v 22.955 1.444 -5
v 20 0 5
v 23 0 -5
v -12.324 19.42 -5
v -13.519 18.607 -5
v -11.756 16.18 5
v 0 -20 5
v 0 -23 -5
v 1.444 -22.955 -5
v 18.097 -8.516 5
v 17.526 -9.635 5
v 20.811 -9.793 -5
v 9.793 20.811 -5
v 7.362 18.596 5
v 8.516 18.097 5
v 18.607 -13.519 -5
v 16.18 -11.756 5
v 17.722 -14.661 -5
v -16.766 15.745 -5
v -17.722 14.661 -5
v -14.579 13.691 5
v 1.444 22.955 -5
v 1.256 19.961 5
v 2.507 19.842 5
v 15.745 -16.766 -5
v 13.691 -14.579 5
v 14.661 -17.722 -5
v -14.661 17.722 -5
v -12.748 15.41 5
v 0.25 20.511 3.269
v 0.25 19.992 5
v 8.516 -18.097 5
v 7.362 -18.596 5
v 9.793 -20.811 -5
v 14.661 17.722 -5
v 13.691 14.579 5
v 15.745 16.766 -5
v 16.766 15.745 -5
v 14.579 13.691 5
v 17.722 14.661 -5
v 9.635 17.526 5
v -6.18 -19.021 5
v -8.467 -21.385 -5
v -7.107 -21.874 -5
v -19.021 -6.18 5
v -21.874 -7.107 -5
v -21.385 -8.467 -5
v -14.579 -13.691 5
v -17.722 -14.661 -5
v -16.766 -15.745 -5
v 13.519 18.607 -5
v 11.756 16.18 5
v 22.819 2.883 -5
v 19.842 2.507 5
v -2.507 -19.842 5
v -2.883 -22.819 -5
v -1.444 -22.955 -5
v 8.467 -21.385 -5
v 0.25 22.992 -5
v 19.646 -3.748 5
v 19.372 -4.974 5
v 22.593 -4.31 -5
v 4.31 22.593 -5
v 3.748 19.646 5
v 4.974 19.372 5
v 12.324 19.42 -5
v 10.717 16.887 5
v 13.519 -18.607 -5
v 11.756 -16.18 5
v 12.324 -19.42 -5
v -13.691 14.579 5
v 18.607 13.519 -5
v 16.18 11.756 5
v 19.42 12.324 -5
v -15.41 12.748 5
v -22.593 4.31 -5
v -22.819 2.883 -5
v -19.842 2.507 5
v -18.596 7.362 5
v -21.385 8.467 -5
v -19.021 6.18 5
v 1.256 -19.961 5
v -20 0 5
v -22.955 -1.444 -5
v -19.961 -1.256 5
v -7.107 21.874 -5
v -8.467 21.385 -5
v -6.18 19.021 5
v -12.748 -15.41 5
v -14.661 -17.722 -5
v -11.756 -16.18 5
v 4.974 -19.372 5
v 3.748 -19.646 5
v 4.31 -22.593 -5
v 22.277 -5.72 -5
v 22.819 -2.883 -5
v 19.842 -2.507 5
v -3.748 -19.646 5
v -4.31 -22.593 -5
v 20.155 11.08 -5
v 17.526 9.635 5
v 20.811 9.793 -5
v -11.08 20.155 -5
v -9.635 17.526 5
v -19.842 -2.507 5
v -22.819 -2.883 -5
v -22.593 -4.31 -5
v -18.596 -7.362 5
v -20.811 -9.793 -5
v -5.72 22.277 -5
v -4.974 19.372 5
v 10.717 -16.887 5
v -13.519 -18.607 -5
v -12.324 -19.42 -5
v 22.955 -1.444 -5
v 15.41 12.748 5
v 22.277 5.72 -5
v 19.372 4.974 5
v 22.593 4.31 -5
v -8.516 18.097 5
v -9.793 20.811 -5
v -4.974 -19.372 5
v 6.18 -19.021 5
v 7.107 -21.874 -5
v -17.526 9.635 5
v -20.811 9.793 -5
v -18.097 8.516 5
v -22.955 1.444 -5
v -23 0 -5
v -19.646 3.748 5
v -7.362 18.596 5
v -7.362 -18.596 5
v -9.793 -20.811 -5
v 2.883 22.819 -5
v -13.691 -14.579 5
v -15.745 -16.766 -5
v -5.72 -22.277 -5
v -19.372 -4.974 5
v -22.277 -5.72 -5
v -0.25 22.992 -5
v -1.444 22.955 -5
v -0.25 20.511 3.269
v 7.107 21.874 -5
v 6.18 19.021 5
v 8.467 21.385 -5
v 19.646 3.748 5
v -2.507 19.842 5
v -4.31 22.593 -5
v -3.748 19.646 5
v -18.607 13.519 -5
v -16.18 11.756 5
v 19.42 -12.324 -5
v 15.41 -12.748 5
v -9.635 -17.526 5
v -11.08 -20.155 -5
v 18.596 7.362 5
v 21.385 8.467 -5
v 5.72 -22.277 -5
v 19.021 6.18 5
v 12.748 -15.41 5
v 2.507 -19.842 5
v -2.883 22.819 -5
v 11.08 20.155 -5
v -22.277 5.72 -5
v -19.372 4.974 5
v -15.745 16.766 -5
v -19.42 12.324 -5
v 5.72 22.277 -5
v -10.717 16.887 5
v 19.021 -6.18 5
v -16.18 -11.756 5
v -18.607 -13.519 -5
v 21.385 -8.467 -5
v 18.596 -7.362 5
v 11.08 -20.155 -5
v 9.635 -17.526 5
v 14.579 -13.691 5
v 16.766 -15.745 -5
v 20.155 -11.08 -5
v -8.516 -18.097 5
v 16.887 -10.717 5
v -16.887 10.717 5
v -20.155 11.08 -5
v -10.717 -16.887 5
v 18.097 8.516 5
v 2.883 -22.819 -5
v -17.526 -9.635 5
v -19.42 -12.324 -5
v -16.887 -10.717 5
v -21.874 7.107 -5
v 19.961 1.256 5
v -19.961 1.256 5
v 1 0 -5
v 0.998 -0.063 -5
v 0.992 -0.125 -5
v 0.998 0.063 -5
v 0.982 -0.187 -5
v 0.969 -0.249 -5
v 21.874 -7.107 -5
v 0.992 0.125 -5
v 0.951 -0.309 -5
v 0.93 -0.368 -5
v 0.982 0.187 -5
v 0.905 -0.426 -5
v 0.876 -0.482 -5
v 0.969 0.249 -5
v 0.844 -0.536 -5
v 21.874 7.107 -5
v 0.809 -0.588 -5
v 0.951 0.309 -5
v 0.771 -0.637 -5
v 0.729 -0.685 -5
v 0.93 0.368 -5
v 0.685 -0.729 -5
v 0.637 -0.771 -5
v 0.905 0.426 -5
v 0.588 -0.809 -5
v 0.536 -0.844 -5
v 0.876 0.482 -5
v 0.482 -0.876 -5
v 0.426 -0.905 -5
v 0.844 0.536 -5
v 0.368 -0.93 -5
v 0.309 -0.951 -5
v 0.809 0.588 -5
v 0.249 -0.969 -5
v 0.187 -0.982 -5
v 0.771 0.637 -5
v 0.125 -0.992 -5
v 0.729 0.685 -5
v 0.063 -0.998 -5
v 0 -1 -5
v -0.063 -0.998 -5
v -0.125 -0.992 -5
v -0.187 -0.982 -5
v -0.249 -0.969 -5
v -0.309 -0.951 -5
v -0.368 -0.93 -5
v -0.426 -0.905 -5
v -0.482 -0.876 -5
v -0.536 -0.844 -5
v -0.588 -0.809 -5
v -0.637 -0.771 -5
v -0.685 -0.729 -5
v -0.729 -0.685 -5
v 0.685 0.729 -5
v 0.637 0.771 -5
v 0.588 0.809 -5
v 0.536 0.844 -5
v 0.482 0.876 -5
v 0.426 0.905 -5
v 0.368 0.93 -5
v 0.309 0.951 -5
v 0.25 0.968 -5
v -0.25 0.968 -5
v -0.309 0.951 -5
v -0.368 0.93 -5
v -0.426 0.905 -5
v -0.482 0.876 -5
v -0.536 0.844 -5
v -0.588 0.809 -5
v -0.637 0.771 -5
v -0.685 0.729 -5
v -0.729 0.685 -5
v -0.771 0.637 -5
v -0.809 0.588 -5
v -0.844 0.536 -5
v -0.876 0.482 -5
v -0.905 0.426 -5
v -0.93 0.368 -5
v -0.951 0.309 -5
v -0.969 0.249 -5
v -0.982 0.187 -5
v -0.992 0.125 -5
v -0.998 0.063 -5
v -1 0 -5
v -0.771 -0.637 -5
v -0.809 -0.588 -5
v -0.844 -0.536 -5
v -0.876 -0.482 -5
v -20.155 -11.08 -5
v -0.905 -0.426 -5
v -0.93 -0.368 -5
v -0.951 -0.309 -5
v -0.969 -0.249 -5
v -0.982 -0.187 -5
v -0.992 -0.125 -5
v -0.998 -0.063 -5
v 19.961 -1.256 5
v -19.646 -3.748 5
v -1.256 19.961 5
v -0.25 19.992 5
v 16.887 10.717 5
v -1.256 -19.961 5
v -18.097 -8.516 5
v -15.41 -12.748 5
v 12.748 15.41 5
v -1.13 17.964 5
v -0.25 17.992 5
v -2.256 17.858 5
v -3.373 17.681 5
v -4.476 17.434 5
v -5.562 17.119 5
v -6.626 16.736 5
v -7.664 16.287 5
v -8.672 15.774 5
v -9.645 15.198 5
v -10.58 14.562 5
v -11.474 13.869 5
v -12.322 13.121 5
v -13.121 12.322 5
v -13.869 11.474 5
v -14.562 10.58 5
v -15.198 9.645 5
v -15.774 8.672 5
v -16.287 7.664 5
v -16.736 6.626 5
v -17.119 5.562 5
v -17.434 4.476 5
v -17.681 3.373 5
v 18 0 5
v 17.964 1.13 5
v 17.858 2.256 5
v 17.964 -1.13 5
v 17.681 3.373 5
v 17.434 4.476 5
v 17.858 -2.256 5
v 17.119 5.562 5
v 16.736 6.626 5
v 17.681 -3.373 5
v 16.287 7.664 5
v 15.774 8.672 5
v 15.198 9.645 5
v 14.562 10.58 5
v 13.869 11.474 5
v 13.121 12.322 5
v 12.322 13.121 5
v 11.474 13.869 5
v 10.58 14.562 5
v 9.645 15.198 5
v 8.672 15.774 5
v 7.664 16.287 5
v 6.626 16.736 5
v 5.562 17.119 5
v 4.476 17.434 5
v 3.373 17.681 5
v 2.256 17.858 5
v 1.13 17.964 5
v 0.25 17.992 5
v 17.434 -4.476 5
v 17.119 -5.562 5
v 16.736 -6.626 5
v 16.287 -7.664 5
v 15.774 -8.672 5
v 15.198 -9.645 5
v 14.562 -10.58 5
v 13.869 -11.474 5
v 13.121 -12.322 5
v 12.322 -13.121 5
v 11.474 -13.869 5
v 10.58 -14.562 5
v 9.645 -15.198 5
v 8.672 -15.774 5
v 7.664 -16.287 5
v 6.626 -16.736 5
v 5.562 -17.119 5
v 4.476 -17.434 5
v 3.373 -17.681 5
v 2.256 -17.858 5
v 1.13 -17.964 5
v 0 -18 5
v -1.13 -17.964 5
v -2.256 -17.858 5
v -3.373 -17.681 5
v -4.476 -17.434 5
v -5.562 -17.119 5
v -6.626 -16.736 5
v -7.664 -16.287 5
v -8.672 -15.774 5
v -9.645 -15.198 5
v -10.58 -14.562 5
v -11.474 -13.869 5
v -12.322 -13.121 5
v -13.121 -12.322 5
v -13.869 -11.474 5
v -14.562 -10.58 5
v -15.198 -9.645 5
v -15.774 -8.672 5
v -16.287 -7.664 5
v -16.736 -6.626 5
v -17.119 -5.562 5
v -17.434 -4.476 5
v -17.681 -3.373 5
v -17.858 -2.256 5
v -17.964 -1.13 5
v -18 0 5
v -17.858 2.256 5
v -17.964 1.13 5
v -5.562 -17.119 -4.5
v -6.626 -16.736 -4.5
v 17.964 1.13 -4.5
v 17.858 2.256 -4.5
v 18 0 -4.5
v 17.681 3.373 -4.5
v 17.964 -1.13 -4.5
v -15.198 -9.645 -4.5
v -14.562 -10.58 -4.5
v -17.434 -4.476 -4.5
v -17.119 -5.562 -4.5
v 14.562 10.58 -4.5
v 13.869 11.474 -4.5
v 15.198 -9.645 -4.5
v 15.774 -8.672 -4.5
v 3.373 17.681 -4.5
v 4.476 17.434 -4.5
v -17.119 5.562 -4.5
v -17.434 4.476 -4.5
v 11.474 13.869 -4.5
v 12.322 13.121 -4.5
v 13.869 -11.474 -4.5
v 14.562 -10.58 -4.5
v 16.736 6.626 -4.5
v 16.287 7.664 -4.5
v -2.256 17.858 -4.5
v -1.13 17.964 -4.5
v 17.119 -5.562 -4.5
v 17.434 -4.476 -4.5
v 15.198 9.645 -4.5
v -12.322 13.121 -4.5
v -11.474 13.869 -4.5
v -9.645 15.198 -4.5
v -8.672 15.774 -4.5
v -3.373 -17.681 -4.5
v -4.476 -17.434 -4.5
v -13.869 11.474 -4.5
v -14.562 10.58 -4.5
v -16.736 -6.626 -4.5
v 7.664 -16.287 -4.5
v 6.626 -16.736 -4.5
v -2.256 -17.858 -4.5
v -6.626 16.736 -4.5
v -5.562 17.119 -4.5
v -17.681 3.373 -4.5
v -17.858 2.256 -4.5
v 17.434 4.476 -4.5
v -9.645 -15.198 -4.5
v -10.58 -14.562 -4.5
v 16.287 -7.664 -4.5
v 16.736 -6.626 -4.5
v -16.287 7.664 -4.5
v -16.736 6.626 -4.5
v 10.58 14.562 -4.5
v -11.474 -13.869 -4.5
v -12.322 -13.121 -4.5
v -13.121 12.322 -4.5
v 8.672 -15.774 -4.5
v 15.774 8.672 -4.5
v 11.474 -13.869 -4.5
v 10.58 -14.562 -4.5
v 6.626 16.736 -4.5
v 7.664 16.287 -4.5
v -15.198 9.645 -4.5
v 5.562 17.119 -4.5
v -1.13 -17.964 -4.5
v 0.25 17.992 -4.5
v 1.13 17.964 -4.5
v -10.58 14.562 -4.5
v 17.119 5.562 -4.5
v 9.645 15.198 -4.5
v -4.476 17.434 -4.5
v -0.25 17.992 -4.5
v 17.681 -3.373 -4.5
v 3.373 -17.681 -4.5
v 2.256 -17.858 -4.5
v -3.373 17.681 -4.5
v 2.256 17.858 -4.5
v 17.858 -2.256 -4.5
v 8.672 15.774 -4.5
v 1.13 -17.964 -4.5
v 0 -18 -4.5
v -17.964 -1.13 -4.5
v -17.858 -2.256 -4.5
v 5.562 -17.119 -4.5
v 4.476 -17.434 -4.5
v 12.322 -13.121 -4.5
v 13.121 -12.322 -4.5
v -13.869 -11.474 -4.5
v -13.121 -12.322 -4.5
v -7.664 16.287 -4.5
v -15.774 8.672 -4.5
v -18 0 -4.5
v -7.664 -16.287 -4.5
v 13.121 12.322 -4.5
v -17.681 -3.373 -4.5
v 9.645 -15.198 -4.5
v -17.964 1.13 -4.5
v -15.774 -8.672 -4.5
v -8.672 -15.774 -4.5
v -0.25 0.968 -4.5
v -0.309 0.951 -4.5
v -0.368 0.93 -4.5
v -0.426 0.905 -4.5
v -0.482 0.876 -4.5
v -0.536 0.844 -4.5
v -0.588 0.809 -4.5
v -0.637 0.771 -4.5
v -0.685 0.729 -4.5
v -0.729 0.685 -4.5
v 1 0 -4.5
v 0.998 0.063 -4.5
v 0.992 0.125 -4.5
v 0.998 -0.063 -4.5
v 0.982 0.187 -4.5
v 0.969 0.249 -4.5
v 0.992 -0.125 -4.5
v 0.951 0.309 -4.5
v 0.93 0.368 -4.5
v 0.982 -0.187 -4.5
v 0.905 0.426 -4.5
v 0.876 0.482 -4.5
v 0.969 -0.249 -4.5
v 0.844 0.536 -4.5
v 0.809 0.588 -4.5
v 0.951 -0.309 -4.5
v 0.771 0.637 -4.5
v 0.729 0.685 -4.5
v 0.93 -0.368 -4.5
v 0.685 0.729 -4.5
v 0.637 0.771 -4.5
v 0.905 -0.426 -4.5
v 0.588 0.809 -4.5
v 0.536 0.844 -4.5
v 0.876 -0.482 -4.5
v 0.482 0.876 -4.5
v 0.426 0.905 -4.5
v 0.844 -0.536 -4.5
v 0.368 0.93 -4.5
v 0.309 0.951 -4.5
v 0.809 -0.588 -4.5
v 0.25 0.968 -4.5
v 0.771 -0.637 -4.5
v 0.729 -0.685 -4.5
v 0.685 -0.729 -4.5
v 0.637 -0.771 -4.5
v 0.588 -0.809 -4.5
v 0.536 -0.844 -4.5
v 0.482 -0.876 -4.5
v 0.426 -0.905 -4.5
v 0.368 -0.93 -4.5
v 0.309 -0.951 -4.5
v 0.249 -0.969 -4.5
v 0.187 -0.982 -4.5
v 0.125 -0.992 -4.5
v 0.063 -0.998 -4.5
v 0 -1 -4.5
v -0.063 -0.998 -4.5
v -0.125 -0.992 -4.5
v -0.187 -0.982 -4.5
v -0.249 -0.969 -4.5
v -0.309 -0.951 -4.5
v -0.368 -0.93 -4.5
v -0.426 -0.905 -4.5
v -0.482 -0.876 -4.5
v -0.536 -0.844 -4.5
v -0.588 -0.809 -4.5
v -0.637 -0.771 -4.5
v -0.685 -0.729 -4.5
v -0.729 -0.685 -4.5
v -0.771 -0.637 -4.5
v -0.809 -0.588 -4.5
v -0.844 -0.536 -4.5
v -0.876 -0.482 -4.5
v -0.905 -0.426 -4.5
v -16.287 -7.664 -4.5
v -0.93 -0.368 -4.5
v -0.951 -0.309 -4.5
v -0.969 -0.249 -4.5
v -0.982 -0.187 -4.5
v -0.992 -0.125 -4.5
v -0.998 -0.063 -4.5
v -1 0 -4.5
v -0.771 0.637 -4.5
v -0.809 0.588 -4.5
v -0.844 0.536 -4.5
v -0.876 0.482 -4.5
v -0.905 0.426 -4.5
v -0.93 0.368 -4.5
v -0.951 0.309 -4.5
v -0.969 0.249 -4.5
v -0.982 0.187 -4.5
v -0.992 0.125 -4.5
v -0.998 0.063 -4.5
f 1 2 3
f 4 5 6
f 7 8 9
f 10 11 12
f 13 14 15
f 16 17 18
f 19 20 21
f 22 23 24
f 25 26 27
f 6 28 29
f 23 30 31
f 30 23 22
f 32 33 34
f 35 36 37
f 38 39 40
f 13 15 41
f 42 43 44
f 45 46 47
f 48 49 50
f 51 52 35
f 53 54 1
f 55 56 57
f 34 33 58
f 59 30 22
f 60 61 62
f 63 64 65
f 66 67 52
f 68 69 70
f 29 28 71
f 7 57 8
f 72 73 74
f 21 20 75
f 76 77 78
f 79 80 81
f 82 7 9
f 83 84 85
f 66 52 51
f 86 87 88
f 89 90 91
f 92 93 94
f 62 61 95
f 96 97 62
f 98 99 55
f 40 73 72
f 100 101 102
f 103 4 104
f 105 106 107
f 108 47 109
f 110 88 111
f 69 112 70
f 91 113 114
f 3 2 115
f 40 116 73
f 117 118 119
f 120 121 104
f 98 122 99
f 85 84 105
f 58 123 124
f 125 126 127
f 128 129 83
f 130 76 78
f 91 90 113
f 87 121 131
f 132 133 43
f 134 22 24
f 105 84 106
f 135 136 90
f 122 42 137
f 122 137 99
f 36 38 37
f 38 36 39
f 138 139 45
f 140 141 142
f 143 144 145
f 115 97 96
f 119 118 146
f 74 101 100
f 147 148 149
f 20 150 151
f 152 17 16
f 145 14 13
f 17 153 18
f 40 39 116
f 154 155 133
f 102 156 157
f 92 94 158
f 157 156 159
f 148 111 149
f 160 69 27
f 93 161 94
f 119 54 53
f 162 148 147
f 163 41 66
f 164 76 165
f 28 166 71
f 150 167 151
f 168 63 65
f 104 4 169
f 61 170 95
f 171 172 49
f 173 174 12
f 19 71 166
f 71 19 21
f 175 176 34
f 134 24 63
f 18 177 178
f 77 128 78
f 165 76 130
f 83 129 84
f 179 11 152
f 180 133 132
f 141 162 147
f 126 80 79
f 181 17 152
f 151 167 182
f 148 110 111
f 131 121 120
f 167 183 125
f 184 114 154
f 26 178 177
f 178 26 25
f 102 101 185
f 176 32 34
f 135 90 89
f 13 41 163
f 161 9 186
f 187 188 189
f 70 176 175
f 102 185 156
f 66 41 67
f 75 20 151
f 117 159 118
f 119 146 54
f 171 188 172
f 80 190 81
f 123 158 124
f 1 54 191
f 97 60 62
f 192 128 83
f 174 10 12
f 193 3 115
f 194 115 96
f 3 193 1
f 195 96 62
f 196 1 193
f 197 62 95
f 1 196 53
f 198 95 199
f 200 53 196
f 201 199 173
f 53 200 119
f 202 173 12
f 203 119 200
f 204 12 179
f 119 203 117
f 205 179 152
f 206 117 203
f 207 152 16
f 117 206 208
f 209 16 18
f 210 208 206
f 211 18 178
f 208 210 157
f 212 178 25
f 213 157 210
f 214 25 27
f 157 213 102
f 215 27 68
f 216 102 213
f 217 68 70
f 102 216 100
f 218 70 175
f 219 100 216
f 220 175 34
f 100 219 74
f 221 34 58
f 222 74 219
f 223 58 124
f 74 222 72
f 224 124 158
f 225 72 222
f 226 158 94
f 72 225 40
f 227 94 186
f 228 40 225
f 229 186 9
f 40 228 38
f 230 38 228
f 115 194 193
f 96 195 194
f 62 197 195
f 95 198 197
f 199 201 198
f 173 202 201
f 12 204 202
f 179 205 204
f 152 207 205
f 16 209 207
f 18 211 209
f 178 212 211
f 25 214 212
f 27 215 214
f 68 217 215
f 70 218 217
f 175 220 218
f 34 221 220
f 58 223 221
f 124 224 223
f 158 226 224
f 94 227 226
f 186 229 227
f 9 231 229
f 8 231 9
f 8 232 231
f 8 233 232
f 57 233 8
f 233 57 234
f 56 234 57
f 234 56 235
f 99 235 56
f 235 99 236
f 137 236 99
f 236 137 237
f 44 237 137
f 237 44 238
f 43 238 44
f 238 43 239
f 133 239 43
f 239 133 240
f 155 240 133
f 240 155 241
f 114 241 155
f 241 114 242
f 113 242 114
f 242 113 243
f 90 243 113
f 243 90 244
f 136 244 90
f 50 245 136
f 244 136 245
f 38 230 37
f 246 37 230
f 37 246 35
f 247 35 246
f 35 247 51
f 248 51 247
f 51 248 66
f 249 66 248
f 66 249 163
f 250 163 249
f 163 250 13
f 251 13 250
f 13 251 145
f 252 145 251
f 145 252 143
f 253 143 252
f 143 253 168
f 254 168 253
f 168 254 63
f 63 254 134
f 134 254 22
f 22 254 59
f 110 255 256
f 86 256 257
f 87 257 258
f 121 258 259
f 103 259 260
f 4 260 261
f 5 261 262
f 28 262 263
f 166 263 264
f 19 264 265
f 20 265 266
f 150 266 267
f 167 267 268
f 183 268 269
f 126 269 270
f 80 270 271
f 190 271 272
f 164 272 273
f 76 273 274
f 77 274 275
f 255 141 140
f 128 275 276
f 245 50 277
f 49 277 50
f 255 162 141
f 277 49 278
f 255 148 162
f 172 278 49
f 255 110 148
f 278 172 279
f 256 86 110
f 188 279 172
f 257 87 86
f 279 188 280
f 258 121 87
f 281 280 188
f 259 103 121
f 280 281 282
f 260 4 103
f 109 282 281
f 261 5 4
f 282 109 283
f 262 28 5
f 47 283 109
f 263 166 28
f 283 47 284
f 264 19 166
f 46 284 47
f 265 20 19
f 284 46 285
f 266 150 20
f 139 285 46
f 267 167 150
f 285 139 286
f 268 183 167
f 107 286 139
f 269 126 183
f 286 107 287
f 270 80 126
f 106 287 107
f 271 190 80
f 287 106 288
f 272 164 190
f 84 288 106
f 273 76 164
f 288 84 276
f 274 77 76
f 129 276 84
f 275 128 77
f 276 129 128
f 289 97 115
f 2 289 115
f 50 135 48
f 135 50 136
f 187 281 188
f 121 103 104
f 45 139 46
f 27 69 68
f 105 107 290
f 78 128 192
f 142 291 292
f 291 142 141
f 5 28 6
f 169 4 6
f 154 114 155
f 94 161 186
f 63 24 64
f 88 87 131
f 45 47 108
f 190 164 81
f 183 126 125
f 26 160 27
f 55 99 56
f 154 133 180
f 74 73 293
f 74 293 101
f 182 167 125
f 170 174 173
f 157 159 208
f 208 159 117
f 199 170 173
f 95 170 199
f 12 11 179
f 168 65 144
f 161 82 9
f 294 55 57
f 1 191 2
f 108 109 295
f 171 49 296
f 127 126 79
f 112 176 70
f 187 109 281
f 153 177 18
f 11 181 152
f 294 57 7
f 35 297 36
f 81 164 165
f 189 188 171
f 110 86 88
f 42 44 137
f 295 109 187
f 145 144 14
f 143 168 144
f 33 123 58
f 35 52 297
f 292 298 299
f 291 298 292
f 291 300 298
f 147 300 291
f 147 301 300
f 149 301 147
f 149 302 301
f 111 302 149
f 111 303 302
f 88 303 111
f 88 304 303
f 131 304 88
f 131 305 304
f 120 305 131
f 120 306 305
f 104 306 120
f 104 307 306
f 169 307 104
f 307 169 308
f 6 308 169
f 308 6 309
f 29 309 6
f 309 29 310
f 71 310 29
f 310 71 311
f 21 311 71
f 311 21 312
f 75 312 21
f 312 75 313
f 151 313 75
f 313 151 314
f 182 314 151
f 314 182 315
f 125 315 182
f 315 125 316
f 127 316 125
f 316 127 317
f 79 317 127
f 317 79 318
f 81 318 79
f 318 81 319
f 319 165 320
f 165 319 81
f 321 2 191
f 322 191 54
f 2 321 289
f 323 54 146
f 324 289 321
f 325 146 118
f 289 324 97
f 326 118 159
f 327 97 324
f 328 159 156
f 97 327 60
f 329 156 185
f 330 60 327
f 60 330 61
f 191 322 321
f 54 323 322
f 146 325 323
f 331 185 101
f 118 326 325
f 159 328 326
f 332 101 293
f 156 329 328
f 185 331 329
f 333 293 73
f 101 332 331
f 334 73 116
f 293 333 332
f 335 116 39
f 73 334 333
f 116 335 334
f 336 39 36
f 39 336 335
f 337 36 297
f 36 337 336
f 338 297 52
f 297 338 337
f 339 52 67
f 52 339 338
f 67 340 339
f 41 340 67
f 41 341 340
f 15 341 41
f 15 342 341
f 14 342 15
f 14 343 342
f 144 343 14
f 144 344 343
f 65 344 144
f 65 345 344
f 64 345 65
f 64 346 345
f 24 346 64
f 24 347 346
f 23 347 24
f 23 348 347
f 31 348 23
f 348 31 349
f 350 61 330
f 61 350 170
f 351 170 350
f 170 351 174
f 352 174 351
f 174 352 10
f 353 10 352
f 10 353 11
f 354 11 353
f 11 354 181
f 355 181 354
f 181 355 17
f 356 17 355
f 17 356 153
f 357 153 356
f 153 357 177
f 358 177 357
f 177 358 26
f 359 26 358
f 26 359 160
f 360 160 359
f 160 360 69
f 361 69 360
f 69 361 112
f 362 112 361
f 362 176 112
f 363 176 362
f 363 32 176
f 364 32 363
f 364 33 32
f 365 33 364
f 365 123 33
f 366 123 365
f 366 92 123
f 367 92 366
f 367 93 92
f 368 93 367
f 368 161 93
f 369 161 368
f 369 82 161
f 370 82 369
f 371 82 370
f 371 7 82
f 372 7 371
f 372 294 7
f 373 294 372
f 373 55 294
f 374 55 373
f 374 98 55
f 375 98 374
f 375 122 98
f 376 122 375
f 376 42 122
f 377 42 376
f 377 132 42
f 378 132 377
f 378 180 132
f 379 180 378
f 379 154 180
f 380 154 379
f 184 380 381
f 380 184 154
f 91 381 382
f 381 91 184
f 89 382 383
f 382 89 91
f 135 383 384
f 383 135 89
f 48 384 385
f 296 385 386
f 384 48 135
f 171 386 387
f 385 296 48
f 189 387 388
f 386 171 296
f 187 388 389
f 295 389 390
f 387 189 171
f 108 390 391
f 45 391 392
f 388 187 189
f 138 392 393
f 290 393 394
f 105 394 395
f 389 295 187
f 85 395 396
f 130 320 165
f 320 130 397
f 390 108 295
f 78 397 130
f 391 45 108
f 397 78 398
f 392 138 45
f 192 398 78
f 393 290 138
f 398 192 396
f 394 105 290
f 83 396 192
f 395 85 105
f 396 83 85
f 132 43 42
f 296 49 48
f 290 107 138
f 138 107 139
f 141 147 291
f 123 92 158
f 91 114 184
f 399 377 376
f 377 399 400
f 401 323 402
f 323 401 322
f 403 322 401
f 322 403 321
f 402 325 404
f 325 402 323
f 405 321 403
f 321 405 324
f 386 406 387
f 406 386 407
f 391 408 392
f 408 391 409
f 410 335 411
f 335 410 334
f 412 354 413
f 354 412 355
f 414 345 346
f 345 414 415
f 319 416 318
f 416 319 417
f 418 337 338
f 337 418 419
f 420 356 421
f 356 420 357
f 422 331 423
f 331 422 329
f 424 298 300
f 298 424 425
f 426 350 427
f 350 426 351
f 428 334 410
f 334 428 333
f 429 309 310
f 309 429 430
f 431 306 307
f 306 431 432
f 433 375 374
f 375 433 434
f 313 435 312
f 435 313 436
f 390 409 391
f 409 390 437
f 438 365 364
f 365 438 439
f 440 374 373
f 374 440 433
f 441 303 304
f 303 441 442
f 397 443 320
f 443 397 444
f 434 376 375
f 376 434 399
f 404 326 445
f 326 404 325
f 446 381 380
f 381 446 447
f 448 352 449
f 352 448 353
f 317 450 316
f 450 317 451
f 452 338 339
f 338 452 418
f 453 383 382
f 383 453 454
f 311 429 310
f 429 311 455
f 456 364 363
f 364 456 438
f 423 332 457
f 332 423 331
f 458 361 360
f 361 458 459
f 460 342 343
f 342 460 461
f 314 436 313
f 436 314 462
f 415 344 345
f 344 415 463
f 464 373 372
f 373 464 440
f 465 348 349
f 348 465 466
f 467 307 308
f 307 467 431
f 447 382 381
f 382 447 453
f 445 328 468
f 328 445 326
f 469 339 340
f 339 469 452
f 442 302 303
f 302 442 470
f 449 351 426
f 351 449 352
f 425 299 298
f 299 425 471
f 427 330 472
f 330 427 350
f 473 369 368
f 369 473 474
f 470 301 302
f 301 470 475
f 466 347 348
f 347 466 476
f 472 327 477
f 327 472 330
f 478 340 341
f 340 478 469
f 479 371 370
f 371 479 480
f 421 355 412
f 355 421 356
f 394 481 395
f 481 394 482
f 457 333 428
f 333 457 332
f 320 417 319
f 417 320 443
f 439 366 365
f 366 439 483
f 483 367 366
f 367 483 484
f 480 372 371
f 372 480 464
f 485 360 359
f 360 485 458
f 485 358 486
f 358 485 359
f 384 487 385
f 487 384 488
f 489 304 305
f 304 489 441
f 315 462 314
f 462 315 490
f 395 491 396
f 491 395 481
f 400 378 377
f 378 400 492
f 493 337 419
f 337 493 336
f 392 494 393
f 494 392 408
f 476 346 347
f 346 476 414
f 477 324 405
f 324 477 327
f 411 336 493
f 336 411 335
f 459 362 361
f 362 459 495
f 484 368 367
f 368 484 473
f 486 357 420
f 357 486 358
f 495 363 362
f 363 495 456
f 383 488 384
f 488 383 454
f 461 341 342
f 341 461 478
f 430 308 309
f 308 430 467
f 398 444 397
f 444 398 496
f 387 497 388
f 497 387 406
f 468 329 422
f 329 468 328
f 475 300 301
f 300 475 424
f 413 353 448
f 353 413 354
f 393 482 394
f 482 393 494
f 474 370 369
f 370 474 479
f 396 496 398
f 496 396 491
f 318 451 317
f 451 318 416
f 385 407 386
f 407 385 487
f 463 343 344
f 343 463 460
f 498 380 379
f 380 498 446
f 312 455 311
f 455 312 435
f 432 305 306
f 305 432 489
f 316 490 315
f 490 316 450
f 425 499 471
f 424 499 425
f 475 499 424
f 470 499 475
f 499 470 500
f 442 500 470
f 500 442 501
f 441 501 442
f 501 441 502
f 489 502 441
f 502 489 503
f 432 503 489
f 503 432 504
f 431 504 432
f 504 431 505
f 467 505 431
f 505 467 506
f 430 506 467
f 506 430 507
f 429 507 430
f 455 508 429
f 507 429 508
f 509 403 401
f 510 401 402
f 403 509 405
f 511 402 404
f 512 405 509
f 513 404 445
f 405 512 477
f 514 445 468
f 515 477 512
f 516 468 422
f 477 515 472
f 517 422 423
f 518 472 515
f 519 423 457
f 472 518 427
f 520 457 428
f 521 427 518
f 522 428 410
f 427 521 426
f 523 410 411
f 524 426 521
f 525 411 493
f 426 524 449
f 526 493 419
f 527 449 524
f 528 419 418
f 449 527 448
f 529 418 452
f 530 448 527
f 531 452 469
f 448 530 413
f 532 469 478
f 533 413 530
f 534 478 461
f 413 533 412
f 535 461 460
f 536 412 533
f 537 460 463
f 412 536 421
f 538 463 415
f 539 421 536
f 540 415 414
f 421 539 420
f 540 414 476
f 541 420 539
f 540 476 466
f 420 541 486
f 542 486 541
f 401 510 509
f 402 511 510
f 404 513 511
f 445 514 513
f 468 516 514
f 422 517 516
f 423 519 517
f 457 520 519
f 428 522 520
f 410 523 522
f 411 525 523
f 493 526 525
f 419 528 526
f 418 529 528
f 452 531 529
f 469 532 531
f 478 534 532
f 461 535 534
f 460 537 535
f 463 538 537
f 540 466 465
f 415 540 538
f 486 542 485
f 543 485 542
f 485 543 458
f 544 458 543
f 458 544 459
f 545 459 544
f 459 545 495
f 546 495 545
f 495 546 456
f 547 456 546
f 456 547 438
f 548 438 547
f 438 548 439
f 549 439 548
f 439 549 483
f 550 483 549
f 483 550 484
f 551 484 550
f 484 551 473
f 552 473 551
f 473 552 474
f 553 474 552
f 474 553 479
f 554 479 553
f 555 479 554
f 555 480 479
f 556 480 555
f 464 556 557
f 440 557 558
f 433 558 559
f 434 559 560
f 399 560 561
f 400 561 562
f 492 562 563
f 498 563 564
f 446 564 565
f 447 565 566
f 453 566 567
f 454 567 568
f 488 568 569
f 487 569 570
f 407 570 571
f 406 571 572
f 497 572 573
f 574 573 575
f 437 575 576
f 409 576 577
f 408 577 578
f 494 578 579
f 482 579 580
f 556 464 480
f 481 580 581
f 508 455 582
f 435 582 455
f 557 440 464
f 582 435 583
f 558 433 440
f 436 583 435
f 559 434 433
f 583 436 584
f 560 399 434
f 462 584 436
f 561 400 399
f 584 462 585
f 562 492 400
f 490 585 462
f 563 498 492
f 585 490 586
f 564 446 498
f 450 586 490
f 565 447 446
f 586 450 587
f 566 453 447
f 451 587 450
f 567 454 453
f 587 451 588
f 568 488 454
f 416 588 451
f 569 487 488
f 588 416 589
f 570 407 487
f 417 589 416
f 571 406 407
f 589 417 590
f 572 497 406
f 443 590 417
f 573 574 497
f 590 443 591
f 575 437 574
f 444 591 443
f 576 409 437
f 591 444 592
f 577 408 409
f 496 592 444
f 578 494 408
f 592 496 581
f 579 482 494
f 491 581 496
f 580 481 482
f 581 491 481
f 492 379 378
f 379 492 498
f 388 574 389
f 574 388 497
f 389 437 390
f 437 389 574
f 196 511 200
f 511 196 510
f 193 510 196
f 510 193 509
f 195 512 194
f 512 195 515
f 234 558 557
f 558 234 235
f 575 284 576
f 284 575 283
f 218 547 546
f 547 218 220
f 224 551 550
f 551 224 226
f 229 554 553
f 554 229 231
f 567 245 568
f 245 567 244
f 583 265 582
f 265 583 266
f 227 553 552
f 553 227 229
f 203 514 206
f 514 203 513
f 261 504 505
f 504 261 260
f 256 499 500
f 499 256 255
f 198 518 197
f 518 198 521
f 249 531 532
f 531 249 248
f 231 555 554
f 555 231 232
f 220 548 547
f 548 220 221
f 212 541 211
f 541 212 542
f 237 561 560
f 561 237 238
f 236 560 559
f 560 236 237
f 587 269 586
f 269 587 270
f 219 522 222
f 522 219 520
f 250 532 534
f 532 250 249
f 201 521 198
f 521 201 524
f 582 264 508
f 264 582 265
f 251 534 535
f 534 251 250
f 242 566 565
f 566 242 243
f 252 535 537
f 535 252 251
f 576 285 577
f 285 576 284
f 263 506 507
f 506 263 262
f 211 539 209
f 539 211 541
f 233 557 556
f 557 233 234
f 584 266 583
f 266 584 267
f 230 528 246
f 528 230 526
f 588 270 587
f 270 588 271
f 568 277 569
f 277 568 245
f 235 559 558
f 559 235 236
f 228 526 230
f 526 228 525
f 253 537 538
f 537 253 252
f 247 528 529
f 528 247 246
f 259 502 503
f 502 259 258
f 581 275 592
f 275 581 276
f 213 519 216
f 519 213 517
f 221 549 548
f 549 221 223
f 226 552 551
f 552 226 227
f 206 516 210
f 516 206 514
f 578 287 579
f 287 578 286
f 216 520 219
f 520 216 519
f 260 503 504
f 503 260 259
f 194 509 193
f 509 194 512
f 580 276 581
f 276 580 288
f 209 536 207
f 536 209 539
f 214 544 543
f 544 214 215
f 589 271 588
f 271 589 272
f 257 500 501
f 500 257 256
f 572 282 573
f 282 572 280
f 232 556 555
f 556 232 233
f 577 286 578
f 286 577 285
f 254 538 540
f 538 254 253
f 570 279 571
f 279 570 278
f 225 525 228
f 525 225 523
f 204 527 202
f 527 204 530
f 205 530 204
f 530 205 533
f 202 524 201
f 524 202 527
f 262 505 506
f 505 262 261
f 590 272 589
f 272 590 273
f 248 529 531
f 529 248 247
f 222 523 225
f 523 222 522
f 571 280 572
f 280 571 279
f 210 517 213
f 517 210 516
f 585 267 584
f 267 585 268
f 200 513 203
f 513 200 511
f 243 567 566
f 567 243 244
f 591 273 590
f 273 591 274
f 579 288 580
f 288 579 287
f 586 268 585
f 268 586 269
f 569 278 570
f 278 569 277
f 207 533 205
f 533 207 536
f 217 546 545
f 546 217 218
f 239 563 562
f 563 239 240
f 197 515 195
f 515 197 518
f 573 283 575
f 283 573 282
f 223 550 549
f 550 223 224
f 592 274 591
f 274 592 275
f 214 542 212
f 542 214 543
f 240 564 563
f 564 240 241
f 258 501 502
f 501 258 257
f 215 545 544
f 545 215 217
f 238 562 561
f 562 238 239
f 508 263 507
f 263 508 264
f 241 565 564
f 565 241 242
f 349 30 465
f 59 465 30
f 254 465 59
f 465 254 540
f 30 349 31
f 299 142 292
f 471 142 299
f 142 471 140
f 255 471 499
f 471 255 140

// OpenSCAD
difference() {
    cylinder(10, 23, 20, $fn=100, center = true);
    {
        translate([0, 0, 3] ) {
            cylinder(15, 18, 18, $fn=100, center = true);
        }
        cylinder(20, 1, 1, $fn=100, center = true);
        translate([0, 25, 0] ) {
            cube([0.5, 50, 30], center = true);
        }
        
    }
};
